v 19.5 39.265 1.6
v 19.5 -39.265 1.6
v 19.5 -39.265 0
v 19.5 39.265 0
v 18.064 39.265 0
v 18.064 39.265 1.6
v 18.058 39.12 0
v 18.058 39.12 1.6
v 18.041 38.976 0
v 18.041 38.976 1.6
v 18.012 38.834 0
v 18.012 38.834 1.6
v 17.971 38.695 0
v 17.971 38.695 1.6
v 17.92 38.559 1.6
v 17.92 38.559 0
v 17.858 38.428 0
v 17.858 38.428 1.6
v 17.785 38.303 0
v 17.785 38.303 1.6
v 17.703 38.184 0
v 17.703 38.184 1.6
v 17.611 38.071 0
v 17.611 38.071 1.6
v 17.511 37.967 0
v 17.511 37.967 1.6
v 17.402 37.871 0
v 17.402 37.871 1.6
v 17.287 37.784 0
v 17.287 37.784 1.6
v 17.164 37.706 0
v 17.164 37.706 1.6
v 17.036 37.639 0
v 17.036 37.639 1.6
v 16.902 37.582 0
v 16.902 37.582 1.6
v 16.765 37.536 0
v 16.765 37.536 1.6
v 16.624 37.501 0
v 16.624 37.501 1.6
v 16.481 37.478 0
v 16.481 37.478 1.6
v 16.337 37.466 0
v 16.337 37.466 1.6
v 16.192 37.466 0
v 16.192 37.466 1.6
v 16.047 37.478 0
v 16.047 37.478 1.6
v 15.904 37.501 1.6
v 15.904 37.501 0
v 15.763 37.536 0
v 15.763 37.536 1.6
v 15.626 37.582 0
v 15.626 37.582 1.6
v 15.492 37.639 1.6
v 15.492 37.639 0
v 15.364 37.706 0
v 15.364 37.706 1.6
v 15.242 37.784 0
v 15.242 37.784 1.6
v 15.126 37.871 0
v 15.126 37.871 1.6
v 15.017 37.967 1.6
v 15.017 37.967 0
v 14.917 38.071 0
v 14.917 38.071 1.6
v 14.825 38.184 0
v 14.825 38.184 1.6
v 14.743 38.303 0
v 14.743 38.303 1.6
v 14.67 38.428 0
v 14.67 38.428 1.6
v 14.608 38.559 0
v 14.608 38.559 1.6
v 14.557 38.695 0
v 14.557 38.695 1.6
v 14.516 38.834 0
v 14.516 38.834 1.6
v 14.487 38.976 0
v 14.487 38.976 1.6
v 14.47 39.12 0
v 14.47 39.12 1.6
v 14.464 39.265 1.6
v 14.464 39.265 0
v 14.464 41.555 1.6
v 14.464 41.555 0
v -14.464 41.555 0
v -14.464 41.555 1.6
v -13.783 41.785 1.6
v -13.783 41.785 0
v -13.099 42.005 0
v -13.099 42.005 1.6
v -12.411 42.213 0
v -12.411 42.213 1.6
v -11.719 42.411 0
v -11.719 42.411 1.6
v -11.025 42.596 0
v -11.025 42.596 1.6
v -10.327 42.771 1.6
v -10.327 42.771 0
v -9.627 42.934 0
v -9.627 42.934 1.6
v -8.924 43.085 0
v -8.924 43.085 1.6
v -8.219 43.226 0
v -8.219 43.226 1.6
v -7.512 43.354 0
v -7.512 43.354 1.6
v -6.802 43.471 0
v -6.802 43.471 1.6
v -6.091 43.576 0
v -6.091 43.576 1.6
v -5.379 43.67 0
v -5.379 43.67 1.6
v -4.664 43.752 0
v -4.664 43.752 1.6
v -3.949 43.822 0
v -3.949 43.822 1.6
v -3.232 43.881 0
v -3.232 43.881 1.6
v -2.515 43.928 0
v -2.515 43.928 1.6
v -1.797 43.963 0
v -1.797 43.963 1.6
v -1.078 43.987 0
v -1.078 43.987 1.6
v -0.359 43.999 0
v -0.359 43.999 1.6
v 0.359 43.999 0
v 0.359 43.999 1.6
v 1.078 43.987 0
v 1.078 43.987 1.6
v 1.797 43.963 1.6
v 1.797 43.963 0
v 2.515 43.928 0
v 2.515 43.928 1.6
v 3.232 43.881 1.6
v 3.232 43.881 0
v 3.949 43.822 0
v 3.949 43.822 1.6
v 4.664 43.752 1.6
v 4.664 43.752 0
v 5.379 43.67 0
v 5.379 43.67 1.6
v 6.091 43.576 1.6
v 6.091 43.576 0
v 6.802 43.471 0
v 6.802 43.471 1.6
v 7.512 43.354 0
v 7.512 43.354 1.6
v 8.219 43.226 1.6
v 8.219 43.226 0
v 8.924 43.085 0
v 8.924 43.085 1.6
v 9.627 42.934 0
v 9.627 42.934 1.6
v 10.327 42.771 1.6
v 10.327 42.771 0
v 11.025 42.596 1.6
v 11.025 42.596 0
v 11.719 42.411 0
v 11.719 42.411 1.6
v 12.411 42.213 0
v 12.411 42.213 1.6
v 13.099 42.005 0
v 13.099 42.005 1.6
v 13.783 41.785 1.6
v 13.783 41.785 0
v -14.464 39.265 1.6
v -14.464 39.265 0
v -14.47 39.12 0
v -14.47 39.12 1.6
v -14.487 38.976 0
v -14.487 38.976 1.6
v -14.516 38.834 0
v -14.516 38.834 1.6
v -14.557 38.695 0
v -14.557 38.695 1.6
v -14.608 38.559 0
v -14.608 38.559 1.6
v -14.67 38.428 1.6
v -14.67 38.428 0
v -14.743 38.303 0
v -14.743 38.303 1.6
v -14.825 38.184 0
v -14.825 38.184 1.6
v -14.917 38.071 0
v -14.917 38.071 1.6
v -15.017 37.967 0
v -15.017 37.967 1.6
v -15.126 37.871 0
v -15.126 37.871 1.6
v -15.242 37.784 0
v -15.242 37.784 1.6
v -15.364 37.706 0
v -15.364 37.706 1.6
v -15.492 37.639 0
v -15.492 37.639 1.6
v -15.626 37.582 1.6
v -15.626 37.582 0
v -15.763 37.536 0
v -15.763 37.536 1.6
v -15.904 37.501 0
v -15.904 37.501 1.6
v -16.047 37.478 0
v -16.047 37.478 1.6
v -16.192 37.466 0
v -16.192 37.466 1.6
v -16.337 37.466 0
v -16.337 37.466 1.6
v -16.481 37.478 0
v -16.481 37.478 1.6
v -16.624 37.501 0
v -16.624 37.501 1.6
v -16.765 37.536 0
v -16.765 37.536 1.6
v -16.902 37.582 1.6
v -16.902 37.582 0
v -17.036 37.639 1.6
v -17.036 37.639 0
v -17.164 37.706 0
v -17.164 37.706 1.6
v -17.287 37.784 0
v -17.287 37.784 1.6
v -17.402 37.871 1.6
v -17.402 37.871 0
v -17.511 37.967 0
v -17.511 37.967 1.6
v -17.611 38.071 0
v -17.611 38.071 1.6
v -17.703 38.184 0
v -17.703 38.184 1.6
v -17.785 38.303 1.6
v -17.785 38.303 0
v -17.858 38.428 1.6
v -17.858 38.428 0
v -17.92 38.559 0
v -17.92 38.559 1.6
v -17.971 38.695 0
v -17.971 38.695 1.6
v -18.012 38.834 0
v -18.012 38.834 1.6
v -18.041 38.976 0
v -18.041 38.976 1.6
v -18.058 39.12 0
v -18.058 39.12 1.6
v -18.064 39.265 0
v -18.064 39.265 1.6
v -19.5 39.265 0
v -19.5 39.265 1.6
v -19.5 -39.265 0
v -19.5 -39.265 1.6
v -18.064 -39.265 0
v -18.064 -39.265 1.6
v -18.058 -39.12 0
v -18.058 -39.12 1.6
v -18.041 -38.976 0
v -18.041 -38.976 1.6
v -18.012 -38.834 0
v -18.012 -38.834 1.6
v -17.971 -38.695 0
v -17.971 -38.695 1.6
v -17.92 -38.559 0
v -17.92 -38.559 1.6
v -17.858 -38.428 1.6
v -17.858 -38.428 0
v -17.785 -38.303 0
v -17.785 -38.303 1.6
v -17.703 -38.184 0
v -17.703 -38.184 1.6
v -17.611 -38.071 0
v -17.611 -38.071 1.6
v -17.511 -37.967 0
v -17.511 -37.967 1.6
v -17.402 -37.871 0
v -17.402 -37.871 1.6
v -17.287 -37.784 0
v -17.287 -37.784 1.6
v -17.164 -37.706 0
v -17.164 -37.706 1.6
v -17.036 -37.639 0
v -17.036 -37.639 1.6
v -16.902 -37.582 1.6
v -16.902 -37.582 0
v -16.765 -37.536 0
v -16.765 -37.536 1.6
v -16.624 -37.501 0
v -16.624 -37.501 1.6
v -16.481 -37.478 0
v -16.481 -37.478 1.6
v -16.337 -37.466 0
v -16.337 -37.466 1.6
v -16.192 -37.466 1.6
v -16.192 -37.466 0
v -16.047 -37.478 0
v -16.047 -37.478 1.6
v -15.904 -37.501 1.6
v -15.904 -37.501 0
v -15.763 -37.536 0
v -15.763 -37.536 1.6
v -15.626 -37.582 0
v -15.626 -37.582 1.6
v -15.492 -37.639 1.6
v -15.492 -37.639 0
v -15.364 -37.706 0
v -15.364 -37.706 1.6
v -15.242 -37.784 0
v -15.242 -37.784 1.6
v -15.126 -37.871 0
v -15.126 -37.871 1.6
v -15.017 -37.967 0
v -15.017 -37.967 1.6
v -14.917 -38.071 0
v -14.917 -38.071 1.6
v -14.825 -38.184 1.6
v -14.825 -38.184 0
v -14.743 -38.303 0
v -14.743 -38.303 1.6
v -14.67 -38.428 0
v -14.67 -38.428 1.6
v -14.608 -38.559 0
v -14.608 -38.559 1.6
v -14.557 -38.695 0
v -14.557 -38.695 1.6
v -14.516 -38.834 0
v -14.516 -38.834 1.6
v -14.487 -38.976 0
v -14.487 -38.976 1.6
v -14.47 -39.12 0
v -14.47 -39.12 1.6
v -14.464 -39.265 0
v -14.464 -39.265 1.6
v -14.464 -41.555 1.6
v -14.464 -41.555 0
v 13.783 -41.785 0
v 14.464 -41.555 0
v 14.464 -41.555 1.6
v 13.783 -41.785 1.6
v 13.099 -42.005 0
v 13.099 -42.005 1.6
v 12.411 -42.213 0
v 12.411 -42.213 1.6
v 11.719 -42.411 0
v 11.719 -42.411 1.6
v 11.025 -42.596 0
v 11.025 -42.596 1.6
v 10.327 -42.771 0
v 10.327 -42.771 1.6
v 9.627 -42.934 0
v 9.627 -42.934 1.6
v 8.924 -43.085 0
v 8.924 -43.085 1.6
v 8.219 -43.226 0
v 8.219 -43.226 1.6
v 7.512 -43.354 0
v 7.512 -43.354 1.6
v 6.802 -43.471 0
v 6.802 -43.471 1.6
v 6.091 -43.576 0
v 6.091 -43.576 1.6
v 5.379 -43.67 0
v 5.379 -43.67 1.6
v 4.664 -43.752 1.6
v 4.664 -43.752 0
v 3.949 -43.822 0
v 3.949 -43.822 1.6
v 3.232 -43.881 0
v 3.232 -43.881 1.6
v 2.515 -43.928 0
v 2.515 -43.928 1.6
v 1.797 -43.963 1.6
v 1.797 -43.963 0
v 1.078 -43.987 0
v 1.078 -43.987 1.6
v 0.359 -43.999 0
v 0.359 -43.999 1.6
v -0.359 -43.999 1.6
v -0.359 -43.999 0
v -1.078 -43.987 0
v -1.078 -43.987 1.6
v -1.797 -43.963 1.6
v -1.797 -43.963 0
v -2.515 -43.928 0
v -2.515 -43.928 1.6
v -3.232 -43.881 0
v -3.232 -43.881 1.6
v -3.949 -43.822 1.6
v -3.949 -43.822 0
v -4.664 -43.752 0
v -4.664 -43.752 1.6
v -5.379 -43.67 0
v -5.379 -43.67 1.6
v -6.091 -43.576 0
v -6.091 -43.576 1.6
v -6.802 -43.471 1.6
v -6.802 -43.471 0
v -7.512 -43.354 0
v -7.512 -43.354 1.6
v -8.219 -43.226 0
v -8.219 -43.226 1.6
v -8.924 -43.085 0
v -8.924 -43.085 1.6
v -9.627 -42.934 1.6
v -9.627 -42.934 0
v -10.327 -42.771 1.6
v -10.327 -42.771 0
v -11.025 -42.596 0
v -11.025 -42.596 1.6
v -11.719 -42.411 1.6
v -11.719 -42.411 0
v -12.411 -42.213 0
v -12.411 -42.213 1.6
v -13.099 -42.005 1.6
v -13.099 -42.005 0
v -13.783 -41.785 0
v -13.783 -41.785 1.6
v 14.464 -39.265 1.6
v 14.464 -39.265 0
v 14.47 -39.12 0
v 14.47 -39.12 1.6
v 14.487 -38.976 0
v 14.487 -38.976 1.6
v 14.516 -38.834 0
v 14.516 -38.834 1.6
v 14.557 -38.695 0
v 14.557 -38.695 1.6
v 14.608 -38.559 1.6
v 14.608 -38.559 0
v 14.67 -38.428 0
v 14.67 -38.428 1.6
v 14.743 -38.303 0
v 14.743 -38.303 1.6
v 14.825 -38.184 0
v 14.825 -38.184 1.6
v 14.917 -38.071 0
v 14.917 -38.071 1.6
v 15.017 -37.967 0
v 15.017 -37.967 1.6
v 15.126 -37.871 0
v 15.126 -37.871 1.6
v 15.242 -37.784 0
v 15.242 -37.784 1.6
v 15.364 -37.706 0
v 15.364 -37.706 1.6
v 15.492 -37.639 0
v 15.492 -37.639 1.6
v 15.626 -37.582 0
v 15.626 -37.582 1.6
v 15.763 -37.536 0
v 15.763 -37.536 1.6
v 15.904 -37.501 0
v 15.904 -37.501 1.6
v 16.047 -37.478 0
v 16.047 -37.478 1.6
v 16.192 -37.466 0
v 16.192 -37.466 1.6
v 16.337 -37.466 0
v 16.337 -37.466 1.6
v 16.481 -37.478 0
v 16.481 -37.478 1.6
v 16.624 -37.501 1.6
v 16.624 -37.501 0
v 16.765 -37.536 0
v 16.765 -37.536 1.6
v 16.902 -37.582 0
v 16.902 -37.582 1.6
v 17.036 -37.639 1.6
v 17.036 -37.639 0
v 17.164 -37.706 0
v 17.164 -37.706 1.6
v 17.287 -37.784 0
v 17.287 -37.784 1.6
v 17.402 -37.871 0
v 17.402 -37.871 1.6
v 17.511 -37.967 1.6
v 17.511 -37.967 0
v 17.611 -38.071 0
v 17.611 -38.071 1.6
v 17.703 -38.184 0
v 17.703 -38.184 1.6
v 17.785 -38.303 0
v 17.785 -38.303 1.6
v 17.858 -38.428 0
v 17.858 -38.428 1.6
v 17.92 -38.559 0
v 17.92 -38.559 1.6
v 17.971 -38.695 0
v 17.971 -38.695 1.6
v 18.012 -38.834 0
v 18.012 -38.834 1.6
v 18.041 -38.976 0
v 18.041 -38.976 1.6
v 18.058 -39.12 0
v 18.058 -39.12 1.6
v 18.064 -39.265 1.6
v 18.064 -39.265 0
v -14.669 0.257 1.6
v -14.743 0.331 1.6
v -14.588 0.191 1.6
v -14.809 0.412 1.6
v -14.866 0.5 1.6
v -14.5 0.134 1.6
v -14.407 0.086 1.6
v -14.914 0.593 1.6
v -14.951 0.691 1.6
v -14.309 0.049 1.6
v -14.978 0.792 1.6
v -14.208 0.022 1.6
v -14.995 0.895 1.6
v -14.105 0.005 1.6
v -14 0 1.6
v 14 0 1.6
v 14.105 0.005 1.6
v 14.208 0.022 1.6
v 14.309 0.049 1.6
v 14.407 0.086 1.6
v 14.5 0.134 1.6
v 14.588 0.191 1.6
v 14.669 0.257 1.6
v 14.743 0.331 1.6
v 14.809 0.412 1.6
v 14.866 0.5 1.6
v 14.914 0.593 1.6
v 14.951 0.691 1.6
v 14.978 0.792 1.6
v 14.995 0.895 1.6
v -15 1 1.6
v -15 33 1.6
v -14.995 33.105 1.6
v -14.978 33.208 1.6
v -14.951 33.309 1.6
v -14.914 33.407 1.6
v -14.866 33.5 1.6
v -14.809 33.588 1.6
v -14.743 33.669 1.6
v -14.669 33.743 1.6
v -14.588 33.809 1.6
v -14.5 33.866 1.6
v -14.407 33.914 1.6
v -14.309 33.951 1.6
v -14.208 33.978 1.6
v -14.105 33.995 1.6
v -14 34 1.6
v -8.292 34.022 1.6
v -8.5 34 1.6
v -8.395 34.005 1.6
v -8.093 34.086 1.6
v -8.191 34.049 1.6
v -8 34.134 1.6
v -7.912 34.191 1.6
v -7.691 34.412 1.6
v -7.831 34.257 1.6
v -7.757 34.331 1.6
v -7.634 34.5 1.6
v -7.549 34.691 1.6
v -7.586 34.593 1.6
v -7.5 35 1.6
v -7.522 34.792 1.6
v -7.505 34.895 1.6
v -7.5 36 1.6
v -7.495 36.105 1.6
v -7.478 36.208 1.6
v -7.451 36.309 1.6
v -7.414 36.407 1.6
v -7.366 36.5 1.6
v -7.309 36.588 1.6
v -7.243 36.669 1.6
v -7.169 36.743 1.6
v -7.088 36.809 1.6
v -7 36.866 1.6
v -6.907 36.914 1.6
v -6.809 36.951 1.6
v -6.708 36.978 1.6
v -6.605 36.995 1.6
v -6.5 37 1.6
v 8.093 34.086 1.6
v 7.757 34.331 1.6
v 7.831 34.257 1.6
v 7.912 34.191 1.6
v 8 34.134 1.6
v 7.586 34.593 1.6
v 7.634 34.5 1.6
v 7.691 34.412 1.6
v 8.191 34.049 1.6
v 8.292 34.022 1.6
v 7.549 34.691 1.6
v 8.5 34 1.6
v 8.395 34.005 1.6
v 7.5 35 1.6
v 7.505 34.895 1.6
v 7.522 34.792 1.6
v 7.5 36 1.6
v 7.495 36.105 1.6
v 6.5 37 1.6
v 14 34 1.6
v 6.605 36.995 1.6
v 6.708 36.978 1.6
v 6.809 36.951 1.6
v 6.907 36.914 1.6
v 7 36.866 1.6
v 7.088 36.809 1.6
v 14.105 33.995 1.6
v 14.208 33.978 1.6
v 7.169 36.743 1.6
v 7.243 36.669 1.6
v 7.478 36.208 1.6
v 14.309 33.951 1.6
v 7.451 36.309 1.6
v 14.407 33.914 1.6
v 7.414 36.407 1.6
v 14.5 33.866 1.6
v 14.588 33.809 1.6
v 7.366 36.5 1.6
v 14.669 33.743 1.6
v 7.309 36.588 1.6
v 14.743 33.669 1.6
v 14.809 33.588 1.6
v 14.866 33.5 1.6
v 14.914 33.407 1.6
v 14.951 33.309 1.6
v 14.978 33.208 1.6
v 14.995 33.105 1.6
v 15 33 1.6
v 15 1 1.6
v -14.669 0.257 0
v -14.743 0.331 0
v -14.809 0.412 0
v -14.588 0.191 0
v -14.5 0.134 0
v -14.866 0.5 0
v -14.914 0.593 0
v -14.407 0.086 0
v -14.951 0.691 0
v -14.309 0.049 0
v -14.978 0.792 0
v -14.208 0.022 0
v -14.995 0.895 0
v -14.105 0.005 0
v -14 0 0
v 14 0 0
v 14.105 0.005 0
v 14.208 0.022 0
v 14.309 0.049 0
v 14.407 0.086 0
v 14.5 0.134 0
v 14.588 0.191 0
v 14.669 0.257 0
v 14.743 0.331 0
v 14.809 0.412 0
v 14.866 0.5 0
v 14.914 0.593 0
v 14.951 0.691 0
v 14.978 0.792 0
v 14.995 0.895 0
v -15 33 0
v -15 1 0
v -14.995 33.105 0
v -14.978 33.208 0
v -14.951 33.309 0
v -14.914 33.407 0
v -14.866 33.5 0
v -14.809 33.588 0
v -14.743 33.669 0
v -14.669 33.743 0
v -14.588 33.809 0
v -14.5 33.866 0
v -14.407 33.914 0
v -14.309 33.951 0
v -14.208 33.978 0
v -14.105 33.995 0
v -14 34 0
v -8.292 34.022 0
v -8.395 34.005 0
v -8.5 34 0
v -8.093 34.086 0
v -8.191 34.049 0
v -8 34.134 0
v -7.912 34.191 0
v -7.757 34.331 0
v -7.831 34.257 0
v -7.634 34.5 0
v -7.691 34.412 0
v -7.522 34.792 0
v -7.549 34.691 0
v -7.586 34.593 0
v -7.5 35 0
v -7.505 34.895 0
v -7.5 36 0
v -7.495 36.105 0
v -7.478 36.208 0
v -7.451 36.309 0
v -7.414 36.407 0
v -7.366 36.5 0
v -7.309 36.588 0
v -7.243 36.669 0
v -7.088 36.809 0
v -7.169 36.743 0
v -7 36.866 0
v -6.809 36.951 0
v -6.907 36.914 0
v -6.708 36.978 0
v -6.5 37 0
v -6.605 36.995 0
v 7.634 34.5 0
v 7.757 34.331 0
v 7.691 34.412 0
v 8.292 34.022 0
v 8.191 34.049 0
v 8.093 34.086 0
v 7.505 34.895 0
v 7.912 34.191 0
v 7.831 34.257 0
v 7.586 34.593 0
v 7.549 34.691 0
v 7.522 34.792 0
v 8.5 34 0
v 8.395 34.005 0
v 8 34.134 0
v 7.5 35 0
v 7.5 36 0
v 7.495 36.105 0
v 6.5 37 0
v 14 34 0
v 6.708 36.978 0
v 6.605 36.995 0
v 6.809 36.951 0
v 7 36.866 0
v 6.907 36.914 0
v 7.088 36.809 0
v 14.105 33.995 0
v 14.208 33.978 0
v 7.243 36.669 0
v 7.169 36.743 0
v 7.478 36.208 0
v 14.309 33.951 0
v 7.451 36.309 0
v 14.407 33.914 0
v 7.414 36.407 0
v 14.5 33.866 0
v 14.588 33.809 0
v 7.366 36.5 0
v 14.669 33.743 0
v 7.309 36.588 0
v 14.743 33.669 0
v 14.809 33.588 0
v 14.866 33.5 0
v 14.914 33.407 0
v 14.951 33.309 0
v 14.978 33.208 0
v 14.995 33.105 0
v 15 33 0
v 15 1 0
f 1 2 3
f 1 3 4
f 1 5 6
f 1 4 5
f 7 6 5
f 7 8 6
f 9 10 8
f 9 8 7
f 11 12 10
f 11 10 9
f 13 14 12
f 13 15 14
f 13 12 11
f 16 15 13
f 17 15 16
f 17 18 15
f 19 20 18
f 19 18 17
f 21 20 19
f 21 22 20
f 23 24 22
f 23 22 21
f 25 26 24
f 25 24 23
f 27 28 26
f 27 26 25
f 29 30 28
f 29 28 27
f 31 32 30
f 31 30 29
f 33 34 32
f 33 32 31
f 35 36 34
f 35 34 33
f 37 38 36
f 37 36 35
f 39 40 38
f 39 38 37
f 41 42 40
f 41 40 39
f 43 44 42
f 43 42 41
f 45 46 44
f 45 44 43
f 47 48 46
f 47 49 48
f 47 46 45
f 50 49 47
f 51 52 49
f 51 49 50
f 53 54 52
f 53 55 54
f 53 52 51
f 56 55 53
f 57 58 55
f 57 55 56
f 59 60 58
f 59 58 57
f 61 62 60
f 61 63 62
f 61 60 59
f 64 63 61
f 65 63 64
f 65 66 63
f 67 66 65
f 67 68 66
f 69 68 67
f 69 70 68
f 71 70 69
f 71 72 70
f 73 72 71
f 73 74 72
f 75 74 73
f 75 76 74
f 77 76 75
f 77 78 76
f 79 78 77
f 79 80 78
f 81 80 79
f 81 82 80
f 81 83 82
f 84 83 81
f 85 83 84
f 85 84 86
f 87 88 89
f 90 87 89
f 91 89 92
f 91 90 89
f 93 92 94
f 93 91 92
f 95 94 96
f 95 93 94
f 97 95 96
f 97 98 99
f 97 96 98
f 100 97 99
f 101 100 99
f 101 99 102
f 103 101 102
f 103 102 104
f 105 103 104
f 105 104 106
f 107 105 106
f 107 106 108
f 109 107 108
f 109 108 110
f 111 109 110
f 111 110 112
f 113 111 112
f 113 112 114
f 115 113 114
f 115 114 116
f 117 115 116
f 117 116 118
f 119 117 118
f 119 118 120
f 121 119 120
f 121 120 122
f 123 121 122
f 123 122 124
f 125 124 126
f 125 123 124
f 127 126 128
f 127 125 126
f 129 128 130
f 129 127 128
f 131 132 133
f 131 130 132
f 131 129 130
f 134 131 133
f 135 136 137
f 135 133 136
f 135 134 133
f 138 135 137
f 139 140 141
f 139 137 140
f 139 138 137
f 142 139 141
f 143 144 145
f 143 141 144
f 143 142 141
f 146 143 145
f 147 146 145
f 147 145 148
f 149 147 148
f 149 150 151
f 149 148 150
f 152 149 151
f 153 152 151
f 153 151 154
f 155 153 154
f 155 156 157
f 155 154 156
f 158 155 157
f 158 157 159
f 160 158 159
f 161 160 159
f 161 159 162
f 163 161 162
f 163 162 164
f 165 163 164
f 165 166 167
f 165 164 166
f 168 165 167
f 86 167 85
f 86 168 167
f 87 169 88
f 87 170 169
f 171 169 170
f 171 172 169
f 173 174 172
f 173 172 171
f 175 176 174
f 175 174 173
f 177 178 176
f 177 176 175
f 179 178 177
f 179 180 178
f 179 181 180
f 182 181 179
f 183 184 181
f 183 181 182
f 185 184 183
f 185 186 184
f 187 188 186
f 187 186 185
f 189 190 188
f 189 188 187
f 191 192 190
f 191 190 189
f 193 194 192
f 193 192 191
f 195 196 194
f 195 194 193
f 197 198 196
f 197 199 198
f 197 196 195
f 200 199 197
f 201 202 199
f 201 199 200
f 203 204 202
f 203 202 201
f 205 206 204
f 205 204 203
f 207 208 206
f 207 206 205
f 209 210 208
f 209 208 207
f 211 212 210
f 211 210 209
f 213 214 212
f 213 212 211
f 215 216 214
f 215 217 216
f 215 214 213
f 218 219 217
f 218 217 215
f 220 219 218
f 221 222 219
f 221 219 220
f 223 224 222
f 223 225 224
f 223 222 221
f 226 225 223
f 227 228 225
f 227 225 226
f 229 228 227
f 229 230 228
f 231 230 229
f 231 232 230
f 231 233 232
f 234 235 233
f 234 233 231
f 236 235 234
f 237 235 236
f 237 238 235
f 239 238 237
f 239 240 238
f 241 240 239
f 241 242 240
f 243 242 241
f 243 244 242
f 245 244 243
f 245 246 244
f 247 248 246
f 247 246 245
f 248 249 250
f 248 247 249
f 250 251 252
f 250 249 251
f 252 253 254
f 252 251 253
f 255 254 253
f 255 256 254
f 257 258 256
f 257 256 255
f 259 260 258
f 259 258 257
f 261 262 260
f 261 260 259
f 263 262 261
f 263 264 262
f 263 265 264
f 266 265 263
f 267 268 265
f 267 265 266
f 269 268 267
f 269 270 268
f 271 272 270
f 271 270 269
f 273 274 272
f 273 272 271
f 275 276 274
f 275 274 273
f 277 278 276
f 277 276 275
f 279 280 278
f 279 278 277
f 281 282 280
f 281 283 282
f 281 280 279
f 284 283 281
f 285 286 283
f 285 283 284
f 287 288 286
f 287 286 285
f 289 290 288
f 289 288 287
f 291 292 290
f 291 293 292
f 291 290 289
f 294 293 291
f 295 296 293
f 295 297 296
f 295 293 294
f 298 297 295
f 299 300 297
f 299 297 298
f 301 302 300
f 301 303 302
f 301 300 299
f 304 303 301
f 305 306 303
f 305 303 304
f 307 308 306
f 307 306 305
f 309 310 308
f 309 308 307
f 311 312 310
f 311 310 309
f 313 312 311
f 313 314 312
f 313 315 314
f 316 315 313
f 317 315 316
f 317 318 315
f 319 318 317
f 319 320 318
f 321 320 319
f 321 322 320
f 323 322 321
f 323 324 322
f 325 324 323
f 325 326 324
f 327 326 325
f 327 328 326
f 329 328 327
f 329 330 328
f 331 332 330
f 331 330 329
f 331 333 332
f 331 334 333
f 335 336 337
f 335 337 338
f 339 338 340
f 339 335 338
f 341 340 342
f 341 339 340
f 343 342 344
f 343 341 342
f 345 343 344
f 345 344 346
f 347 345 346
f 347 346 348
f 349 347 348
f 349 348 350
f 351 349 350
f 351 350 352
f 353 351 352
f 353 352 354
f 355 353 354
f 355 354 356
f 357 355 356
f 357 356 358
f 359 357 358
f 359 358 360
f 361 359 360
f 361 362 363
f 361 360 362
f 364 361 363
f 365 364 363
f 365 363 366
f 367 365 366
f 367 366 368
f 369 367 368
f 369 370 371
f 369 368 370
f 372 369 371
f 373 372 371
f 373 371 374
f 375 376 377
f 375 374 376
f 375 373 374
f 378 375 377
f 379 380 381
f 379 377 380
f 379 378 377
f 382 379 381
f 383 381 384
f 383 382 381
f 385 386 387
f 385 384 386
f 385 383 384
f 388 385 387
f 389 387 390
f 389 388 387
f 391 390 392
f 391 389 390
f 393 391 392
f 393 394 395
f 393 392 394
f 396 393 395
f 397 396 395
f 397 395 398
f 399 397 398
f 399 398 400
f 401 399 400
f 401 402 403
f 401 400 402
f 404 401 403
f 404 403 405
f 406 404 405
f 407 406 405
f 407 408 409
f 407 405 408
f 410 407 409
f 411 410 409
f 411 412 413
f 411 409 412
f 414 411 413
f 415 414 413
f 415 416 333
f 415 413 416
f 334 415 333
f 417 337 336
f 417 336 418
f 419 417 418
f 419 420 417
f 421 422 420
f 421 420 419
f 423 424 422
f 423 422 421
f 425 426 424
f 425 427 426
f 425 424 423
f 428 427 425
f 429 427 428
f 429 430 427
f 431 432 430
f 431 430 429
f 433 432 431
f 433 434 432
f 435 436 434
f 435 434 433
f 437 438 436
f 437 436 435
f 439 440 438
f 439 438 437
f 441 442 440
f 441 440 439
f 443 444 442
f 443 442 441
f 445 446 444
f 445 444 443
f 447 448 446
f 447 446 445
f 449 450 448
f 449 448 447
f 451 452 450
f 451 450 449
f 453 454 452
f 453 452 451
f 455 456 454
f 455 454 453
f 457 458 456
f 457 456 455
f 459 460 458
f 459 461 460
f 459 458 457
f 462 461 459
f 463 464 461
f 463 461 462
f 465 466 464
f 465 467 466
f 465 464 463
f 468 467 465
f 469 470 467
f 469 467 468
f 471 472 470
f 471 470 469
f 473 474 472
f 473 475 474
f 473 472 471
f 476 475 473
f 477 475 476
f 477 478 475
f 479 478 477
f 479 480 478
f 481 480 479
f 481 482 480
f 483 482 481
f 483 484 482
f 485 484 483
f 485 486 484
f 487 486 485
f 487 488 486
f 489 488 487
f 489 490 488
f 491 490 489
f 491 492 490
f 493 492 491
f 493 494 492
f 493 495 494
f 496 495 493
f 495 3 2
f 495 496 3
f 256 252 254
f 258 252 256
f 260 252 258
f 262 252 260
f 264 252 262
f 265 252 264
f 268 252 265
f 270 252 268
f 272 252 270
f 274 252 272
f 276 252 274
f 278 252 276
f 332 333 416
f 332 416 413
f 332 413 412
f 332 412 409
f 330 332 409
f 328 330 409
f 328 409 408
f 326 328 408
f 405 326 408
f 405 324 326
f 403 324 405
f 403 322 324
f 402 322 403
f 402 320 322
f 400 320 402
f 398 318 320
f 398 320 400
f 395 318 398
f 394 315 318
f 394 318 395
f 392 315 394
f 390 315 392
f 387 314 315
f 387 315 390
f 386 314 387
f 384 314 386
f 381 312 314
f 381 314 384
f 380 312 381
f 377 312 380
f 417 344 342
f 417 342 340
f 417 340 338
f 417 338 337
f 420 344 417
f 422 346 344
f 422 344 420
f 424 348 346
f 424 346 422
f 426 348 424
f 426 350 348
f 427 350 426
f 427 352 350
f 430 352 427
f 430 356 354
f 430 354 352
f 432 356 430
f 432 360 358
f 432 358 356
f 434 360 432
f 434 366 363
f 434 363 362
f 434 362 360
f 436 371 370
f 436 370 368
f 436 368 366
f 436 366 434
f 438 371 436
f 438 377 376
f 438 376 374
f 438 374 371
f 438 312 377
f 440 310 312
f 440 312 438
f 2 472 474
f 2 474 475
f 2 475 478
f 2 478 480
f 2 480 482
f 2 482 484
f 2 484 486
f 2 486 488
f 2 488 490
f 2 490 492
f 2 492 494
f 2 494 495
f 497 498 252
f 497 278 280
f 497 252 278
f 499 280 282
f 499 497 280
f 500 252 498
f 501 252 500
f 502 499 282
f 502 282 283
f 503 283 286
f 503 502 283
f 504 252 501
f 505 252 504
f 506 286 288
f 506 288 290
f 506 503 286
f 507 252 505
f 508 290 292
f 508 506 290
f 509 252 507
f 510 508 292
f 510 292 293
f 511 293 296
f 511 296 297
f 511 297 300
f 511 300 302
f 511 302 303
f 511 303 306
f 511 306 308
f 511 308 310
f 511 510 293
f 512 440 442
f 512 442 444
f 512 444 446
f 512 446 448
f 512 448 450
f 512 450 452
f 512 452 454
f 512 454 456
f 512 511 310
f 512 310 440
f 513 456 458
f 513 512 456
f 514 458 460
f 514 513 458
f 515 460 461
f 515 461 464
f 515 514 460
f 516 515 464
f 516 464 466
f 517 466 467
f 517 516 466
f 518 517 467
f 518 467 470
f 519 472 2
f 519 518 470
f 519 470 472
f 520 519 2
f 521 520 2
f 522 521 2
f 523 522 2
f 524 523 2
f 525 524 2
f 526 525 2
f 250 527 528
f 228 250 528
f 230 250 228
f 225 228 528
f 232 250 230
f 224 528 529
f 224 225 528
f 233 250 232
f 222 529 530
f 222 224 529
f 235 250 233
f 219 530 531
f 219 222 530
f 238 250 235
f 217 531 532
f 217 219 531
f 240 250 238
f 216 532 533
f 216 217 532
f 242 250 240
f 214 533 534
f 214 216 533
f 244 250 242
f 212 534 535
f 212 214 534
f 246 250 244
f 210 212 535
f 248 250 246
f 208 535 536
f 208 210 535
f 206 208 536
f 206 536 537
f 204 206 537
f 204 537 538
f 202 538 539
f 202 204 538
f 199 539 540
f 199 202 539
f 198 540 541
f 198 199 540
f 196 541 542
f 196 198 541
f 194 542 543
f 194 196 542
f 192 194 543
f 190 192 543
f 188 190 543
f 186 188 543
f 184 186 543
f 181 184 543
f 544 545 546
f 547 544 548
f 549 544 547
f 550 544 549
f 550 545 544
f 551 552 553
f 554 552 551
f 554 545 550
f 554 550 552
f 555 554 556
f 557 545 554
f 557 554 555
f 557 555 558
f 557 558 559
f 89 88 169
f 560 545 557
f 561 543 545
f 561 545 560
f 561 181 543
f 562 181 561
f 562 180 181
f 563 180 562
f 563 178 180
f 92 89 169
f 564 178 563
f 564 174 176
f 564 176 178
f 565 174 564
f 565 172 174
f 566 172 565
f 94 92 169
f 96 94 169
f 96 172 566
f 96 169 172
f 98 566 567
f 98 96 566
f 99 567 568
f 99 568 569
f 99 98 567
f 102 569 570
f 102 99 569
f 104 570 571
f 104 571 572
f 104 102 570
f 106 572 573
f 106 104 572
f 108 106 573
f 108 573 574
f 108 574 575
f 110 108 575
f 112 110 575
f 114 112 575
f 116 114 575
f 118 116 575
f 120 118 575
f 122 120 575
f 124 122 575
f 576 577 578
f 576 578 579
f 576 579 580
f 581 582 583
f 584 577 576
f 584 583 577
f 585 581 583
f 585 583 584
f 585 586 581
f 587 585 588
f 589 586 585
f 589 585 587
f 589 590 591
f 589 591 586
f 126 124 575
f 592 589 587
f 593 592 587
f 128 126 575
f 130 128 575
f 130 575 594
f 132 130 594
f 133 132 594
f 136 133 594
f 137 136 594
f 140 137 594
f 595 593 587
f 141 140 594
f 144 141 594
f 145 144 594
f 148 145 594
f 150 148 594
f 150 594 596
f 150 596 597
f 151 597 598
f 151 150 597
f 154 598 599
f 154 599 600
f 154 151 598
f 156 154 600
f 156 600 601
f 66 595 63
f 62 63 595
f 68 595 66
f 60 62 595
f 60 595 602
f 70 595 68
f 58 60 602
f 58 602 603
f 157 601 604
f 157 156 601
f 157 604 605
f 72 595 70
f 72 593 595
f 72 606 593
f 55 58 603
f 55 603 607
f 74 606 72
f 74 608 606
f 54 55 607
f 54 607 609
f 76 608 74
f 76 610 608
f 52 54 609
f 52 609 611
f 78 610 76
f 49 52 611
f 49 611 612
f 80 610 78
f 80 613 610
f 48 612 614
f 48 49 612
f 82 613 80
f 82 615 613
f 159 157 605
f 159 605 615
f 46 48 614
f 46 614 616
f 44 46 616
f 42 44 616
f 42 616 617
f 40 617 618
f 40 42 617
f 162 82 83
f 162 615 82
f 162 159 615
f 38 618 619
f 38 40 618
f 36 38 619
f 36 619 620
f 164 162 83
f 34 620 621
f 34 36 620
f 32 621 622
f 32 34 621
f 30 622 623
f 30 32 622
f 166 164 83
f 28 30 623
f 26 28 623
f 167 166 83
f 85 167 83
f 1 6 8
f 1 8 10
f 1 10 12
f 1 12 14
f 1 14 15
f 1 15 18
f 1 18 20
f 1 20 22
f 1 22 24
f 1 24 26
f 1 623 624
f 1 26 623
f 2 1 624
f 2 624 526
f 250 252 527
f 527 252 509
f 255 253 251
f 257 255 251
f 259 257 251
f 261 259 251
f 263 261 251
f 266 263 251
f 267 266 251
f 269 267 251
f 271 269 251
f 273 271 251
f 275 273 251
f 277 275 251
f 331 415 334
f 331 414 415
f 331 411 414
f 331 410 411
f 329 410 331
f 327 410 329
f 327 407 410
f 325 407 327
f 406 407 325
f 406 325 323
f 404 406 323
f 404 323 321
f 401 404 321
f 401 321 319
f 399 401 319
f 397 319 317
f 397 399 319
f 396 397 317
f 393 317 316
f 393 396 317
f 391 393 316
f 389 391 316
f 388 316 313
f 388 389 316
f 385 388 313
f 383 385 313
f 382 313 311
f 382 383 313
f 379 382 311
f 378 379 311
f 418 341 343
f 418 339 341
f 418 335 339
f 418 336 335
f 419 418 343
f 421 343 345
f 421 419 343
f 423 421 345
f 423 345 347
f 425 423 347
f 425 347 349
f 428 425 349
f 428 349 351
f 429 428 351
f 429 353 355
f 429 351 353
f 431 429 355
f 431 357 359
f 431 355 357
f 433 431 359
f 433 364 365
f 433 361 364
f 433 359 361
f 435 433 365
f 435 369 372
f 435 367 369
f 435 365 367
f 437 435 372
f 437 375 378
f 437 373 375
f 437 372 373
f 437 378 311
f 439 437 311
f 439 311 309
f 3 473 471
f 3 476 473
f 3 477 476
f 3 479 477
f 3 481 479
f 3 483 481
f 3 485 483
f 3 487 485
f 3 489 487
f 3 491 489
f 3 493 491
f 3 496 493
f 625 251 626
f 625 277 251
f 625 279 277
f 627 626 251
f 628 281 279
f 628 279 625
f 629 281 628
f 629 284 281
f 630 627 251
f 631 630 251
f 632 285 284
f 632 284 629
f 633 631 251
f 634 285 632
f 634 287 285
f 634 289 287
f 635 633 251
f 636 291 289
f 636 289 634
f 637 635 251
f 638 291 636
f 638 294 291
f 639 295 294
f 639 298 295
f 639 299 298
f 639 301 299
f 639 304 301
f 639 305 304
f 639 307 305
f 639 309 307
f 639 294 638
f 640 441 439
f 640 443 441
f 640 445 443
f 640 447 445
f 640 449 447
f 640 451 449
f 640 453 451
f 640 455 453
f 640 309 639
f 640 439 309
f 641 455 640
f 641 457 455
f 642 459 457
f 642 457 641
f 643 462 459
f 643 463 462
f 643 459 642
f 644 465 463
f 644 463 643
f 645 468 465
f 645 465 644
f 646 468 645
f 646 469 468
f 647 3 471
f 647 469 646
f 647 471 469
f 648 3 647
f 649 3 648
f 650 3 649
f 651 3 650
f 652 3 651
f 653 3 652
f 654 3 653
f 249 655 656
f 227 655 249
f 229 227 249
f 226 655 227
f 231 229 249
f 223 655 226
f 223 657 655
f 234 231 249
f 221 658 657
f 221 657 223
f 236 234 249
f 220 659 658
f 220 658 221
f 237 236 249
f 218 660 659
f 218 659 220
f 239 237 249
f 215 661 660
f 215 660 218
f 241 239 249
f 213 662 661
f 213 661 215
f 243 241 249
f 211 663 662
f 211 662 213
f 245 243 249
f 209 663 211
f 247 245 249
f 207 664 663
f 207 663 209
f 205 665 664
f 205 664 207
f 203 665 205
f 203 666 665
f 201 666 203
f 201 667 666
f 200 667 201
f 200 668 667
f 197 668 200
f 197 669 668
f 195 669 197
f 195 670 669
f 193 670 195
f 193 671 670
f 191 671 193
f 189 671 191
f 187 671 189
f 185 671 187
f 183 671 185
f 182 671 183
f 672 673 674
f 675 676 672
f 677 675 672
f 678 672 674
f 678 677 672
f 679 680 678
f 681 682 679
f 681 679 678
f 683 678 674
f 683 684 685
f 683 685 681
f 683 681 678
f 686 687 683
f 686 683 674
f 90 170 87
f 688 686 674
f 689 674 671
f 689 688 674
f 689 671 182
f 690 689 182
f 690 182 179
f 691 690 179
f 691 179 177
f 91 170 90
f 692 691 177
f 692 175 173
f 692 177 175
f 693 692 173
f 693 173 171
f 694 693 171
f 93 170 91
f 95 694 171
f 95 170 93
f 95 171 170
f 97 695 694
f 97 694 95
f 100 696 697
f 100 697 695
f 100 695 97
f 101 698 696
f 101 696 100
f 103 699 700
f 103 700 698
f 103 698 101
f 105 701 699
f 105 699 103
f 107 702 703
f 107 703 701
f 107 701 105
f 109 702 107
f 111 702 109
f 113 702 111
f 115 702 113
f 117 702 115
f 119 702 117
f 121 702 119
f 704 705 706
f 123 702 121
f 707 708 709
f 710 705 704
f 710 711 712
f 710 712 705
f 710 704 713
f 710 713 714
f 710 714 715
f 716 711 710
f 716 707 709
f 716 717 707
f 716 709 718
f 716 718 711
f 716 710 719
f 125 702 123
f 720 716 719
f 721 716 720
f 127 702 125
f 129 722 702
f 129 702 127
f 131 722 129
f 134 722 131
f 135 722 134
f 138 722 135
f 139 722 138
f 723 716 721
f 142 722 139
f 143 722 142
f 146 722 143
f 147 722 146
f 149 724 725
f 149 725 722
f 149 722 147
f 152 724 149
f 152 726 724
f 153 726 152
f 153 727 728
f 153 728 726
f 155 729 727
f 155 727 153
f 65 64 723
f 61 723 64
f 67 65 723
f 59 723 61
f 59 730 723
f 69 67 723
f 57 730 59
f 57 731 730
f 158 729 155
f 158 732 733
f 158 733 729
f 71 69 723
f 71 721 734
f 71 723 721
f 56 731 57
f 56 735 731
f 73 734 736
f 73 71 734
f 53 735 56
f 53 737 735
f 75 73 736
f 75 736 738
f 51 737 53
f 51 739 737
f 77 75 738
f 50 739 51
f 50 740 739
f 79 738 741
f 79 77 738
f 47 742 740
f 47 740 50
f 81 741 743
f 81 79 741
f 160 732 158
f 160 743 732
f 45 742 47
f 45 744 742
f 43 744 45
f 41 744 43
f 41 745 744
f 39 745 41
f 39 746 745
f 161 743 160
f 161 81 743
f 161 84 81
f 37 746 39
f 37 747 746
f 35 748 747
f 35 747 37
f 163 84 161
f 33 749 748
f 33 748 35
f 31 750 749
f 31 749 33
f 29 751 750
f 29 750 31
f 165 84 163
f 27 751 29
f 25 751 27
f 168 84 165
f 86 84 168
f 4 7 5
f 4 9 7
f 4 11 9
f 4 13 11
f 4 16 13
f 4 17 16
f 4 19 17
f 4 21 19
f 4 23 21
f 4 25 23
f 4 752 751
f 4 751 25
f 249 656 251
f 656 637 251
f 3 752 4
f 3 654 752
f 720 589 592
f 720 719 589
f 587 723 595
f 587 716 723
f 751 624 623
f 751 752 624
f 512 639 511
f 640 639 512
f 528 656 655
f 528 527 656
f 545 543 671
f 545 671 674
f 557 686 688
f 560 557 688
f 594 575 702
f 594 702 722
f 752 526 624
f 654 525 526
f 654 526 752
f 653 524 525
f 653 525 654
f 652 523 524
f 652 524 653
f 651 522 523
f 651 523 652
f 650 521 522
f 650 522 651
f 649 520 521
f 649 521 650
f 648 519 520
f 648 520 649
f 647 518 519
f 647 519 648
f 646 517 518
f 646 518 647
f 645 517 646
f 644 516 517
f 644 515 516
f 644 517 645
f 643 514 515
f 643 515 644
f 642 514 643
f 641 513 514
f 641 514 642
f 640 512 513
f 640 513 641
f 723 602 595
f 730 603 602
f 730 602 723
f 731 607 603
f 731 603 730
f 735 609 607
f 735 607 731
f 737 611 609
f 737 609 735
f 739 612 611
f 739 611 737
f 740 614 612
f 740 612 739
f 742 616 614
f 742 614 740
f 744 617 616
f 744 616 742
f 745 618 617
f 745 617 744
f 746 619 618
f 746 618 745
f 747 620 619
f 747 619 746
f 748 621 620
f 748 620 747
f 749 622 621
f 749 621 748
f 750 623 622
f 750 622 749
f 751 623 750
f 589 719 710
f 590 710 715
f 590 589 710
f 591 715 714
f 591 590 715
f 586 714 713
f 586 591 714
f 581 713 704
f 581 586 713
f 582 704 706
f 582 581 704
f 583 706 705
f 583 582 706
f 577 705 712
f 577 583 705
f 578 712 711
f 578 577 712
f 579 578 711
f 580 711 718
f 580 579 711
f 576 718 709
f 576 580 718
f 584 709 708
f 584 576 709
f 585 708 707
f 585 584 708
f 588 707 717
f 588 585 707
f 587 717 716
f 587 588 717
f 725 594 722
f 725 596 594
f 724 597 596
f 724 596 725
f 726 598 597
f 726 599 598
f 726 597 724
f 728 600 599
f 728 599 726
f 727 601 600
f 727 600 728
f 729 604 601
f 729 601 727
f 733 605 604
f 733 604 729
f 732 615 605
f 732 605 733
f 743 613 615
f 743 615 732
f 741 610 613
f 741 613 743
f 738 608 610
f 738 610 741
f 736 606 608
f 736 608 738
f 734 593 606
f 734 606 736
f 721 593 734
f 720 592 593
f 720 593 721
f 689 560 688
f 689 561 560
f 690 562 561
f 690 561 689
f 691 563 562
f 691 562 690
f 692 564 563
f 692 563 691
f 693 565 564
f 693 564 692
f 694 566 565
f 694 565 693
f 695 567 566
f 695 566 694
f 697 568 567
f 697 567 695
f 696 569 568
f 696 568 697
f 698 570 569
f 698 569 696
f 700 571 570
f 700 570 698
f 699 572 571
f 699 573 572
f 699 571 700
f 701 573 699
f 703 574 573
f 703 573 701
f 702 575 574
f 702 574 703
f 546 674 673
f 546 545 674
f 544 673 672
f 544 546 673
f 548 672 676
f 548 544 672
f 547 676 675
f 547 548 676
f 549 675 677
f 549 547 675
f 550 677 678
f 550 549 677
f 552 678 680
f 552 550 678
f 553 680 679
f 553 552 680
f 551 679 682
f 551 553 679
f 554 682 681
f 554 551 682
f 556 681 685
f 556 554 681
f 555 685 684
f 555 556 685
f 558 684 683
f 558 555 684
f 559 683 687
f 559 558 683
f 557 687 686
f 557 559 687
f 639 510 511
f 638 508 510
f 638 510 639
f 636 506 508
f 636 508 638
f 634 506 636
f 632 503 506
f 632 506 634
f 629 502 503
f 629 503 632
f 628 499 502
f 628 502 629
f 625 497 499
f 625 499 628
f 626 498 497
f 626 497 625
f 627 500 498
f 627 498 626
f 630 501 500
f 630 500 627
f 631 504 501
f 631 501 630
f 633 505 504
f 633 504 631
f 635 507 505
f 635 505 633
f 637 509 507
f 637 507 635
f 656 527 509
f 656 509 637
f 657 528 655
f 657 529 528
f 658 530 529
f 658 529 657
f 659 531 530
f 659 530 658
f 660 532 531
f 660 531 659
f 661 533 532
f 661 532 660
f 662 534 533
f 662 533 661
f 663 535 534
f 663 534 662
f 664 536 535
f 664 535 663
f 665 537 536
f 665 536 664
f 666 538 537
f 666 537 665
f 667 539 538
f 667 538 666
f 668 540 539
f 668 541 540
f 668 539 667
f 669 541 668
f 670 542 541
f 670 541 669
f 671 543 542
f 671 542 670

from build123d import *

# Parameters (mm, degrees)
EXTRUDE_1_DEPTH     = 1.6
CUT_EXTRUDE_1_DEPTH = 10
FILLET_2_R          = 1


with BuildPart() as part:
    # 草图1 → 凸台-拉伸1 (new body)
    with BuildSketch(Plane.XY):
        with BuildLine():
            Line((-19.5, 0), (-19.5, 39.264880132))
            Line((-19.5, 39.264880132), (-18.064045876, 39.264880132))
            ThreePointArc((-18.064045876, 39.264880132), (-16.264045876, 37.464880132), (-14.464045876, 39.264880132))
            Line((-14.464045876, 39.264880132), (-14.464045876, 41.554679362))
            ThreePointArc((-14.464045876, 41.554679362), (0, 44), (14.464045876, 41.554679362))
            Line((14.464045876, 41.554679362), (14.464045876, 39.264880132))
            ThreePointArc((14.464045876, 39.264880132), (16.264045876, 37.464880132), (18.064045876, 39.264880132))
            Line((18.064045876, 39.264880132), (19.5, 39.264880132))
            Line((19.5, 39.264880132), (19.5, 0))
            Line((19.5, 0), (19.5, -39.264880132))
            Line((19.5, -39.264880132), (18.064045876, -39.264880132))
            ThreePointArc((18.064045876, -39.264880132), (16.264045876, -37.464880132), (14.464045876, -39.264880132))
            Line((14.464045876, -39.264880132), (14.464045876, -41.554679362))
            ThreePointArc((14.464045876, -41.554679362), (0, -44), (-14.464045876, -41.554679362))
            Line((-14.464045876, -41.554679362), (-14.464045876, -39.264880132))
            ThreePointArc((-14.464045876, -39.264880132), (-16.264045876, -37.464880132), (-18.064045876, -39.264880132))
            Line((-18.064045876, -39.264880132), (-19.5, -39.264880132))
            Line((-19.5, -39.264880132), (-19.5, 0))
        make_face()
    extrude(amount=EXTRUDE_1_DEPTH)

    # 草图2 → 切除-拉伸1 (cut)
    with BuildSketch(Plane.XY.offset(1.6)):
        Polygon((-15, 0), (15, 0), (15, 34), (7.5, 34), (7.5, 37), (-7.5, 37), (-7.5, 34), (-15, 34), align=None)
    extrude(amount=-CUT_EXTRUDE_1_DEPTH, mode=Mode.SUBTRACT)

    # 圆角2
    fillet_2_edges = [part.edges().sort_by_distance(p)[0] for p in [
        (7.5, 37, 0.8),
        (7.5, 34, 0.8),
        (15, 34, 0.8),
        (15, 0, 0.8),
        (-15, 0, 0.8),
        (-15, 34, 0.8),
        (-7.5, 34, 0.8),
        (-7.5, 37, 0.8),
    ]]
    fillet(fillet_2_edges, radius=FILLET_2_R)


solid = part.part
